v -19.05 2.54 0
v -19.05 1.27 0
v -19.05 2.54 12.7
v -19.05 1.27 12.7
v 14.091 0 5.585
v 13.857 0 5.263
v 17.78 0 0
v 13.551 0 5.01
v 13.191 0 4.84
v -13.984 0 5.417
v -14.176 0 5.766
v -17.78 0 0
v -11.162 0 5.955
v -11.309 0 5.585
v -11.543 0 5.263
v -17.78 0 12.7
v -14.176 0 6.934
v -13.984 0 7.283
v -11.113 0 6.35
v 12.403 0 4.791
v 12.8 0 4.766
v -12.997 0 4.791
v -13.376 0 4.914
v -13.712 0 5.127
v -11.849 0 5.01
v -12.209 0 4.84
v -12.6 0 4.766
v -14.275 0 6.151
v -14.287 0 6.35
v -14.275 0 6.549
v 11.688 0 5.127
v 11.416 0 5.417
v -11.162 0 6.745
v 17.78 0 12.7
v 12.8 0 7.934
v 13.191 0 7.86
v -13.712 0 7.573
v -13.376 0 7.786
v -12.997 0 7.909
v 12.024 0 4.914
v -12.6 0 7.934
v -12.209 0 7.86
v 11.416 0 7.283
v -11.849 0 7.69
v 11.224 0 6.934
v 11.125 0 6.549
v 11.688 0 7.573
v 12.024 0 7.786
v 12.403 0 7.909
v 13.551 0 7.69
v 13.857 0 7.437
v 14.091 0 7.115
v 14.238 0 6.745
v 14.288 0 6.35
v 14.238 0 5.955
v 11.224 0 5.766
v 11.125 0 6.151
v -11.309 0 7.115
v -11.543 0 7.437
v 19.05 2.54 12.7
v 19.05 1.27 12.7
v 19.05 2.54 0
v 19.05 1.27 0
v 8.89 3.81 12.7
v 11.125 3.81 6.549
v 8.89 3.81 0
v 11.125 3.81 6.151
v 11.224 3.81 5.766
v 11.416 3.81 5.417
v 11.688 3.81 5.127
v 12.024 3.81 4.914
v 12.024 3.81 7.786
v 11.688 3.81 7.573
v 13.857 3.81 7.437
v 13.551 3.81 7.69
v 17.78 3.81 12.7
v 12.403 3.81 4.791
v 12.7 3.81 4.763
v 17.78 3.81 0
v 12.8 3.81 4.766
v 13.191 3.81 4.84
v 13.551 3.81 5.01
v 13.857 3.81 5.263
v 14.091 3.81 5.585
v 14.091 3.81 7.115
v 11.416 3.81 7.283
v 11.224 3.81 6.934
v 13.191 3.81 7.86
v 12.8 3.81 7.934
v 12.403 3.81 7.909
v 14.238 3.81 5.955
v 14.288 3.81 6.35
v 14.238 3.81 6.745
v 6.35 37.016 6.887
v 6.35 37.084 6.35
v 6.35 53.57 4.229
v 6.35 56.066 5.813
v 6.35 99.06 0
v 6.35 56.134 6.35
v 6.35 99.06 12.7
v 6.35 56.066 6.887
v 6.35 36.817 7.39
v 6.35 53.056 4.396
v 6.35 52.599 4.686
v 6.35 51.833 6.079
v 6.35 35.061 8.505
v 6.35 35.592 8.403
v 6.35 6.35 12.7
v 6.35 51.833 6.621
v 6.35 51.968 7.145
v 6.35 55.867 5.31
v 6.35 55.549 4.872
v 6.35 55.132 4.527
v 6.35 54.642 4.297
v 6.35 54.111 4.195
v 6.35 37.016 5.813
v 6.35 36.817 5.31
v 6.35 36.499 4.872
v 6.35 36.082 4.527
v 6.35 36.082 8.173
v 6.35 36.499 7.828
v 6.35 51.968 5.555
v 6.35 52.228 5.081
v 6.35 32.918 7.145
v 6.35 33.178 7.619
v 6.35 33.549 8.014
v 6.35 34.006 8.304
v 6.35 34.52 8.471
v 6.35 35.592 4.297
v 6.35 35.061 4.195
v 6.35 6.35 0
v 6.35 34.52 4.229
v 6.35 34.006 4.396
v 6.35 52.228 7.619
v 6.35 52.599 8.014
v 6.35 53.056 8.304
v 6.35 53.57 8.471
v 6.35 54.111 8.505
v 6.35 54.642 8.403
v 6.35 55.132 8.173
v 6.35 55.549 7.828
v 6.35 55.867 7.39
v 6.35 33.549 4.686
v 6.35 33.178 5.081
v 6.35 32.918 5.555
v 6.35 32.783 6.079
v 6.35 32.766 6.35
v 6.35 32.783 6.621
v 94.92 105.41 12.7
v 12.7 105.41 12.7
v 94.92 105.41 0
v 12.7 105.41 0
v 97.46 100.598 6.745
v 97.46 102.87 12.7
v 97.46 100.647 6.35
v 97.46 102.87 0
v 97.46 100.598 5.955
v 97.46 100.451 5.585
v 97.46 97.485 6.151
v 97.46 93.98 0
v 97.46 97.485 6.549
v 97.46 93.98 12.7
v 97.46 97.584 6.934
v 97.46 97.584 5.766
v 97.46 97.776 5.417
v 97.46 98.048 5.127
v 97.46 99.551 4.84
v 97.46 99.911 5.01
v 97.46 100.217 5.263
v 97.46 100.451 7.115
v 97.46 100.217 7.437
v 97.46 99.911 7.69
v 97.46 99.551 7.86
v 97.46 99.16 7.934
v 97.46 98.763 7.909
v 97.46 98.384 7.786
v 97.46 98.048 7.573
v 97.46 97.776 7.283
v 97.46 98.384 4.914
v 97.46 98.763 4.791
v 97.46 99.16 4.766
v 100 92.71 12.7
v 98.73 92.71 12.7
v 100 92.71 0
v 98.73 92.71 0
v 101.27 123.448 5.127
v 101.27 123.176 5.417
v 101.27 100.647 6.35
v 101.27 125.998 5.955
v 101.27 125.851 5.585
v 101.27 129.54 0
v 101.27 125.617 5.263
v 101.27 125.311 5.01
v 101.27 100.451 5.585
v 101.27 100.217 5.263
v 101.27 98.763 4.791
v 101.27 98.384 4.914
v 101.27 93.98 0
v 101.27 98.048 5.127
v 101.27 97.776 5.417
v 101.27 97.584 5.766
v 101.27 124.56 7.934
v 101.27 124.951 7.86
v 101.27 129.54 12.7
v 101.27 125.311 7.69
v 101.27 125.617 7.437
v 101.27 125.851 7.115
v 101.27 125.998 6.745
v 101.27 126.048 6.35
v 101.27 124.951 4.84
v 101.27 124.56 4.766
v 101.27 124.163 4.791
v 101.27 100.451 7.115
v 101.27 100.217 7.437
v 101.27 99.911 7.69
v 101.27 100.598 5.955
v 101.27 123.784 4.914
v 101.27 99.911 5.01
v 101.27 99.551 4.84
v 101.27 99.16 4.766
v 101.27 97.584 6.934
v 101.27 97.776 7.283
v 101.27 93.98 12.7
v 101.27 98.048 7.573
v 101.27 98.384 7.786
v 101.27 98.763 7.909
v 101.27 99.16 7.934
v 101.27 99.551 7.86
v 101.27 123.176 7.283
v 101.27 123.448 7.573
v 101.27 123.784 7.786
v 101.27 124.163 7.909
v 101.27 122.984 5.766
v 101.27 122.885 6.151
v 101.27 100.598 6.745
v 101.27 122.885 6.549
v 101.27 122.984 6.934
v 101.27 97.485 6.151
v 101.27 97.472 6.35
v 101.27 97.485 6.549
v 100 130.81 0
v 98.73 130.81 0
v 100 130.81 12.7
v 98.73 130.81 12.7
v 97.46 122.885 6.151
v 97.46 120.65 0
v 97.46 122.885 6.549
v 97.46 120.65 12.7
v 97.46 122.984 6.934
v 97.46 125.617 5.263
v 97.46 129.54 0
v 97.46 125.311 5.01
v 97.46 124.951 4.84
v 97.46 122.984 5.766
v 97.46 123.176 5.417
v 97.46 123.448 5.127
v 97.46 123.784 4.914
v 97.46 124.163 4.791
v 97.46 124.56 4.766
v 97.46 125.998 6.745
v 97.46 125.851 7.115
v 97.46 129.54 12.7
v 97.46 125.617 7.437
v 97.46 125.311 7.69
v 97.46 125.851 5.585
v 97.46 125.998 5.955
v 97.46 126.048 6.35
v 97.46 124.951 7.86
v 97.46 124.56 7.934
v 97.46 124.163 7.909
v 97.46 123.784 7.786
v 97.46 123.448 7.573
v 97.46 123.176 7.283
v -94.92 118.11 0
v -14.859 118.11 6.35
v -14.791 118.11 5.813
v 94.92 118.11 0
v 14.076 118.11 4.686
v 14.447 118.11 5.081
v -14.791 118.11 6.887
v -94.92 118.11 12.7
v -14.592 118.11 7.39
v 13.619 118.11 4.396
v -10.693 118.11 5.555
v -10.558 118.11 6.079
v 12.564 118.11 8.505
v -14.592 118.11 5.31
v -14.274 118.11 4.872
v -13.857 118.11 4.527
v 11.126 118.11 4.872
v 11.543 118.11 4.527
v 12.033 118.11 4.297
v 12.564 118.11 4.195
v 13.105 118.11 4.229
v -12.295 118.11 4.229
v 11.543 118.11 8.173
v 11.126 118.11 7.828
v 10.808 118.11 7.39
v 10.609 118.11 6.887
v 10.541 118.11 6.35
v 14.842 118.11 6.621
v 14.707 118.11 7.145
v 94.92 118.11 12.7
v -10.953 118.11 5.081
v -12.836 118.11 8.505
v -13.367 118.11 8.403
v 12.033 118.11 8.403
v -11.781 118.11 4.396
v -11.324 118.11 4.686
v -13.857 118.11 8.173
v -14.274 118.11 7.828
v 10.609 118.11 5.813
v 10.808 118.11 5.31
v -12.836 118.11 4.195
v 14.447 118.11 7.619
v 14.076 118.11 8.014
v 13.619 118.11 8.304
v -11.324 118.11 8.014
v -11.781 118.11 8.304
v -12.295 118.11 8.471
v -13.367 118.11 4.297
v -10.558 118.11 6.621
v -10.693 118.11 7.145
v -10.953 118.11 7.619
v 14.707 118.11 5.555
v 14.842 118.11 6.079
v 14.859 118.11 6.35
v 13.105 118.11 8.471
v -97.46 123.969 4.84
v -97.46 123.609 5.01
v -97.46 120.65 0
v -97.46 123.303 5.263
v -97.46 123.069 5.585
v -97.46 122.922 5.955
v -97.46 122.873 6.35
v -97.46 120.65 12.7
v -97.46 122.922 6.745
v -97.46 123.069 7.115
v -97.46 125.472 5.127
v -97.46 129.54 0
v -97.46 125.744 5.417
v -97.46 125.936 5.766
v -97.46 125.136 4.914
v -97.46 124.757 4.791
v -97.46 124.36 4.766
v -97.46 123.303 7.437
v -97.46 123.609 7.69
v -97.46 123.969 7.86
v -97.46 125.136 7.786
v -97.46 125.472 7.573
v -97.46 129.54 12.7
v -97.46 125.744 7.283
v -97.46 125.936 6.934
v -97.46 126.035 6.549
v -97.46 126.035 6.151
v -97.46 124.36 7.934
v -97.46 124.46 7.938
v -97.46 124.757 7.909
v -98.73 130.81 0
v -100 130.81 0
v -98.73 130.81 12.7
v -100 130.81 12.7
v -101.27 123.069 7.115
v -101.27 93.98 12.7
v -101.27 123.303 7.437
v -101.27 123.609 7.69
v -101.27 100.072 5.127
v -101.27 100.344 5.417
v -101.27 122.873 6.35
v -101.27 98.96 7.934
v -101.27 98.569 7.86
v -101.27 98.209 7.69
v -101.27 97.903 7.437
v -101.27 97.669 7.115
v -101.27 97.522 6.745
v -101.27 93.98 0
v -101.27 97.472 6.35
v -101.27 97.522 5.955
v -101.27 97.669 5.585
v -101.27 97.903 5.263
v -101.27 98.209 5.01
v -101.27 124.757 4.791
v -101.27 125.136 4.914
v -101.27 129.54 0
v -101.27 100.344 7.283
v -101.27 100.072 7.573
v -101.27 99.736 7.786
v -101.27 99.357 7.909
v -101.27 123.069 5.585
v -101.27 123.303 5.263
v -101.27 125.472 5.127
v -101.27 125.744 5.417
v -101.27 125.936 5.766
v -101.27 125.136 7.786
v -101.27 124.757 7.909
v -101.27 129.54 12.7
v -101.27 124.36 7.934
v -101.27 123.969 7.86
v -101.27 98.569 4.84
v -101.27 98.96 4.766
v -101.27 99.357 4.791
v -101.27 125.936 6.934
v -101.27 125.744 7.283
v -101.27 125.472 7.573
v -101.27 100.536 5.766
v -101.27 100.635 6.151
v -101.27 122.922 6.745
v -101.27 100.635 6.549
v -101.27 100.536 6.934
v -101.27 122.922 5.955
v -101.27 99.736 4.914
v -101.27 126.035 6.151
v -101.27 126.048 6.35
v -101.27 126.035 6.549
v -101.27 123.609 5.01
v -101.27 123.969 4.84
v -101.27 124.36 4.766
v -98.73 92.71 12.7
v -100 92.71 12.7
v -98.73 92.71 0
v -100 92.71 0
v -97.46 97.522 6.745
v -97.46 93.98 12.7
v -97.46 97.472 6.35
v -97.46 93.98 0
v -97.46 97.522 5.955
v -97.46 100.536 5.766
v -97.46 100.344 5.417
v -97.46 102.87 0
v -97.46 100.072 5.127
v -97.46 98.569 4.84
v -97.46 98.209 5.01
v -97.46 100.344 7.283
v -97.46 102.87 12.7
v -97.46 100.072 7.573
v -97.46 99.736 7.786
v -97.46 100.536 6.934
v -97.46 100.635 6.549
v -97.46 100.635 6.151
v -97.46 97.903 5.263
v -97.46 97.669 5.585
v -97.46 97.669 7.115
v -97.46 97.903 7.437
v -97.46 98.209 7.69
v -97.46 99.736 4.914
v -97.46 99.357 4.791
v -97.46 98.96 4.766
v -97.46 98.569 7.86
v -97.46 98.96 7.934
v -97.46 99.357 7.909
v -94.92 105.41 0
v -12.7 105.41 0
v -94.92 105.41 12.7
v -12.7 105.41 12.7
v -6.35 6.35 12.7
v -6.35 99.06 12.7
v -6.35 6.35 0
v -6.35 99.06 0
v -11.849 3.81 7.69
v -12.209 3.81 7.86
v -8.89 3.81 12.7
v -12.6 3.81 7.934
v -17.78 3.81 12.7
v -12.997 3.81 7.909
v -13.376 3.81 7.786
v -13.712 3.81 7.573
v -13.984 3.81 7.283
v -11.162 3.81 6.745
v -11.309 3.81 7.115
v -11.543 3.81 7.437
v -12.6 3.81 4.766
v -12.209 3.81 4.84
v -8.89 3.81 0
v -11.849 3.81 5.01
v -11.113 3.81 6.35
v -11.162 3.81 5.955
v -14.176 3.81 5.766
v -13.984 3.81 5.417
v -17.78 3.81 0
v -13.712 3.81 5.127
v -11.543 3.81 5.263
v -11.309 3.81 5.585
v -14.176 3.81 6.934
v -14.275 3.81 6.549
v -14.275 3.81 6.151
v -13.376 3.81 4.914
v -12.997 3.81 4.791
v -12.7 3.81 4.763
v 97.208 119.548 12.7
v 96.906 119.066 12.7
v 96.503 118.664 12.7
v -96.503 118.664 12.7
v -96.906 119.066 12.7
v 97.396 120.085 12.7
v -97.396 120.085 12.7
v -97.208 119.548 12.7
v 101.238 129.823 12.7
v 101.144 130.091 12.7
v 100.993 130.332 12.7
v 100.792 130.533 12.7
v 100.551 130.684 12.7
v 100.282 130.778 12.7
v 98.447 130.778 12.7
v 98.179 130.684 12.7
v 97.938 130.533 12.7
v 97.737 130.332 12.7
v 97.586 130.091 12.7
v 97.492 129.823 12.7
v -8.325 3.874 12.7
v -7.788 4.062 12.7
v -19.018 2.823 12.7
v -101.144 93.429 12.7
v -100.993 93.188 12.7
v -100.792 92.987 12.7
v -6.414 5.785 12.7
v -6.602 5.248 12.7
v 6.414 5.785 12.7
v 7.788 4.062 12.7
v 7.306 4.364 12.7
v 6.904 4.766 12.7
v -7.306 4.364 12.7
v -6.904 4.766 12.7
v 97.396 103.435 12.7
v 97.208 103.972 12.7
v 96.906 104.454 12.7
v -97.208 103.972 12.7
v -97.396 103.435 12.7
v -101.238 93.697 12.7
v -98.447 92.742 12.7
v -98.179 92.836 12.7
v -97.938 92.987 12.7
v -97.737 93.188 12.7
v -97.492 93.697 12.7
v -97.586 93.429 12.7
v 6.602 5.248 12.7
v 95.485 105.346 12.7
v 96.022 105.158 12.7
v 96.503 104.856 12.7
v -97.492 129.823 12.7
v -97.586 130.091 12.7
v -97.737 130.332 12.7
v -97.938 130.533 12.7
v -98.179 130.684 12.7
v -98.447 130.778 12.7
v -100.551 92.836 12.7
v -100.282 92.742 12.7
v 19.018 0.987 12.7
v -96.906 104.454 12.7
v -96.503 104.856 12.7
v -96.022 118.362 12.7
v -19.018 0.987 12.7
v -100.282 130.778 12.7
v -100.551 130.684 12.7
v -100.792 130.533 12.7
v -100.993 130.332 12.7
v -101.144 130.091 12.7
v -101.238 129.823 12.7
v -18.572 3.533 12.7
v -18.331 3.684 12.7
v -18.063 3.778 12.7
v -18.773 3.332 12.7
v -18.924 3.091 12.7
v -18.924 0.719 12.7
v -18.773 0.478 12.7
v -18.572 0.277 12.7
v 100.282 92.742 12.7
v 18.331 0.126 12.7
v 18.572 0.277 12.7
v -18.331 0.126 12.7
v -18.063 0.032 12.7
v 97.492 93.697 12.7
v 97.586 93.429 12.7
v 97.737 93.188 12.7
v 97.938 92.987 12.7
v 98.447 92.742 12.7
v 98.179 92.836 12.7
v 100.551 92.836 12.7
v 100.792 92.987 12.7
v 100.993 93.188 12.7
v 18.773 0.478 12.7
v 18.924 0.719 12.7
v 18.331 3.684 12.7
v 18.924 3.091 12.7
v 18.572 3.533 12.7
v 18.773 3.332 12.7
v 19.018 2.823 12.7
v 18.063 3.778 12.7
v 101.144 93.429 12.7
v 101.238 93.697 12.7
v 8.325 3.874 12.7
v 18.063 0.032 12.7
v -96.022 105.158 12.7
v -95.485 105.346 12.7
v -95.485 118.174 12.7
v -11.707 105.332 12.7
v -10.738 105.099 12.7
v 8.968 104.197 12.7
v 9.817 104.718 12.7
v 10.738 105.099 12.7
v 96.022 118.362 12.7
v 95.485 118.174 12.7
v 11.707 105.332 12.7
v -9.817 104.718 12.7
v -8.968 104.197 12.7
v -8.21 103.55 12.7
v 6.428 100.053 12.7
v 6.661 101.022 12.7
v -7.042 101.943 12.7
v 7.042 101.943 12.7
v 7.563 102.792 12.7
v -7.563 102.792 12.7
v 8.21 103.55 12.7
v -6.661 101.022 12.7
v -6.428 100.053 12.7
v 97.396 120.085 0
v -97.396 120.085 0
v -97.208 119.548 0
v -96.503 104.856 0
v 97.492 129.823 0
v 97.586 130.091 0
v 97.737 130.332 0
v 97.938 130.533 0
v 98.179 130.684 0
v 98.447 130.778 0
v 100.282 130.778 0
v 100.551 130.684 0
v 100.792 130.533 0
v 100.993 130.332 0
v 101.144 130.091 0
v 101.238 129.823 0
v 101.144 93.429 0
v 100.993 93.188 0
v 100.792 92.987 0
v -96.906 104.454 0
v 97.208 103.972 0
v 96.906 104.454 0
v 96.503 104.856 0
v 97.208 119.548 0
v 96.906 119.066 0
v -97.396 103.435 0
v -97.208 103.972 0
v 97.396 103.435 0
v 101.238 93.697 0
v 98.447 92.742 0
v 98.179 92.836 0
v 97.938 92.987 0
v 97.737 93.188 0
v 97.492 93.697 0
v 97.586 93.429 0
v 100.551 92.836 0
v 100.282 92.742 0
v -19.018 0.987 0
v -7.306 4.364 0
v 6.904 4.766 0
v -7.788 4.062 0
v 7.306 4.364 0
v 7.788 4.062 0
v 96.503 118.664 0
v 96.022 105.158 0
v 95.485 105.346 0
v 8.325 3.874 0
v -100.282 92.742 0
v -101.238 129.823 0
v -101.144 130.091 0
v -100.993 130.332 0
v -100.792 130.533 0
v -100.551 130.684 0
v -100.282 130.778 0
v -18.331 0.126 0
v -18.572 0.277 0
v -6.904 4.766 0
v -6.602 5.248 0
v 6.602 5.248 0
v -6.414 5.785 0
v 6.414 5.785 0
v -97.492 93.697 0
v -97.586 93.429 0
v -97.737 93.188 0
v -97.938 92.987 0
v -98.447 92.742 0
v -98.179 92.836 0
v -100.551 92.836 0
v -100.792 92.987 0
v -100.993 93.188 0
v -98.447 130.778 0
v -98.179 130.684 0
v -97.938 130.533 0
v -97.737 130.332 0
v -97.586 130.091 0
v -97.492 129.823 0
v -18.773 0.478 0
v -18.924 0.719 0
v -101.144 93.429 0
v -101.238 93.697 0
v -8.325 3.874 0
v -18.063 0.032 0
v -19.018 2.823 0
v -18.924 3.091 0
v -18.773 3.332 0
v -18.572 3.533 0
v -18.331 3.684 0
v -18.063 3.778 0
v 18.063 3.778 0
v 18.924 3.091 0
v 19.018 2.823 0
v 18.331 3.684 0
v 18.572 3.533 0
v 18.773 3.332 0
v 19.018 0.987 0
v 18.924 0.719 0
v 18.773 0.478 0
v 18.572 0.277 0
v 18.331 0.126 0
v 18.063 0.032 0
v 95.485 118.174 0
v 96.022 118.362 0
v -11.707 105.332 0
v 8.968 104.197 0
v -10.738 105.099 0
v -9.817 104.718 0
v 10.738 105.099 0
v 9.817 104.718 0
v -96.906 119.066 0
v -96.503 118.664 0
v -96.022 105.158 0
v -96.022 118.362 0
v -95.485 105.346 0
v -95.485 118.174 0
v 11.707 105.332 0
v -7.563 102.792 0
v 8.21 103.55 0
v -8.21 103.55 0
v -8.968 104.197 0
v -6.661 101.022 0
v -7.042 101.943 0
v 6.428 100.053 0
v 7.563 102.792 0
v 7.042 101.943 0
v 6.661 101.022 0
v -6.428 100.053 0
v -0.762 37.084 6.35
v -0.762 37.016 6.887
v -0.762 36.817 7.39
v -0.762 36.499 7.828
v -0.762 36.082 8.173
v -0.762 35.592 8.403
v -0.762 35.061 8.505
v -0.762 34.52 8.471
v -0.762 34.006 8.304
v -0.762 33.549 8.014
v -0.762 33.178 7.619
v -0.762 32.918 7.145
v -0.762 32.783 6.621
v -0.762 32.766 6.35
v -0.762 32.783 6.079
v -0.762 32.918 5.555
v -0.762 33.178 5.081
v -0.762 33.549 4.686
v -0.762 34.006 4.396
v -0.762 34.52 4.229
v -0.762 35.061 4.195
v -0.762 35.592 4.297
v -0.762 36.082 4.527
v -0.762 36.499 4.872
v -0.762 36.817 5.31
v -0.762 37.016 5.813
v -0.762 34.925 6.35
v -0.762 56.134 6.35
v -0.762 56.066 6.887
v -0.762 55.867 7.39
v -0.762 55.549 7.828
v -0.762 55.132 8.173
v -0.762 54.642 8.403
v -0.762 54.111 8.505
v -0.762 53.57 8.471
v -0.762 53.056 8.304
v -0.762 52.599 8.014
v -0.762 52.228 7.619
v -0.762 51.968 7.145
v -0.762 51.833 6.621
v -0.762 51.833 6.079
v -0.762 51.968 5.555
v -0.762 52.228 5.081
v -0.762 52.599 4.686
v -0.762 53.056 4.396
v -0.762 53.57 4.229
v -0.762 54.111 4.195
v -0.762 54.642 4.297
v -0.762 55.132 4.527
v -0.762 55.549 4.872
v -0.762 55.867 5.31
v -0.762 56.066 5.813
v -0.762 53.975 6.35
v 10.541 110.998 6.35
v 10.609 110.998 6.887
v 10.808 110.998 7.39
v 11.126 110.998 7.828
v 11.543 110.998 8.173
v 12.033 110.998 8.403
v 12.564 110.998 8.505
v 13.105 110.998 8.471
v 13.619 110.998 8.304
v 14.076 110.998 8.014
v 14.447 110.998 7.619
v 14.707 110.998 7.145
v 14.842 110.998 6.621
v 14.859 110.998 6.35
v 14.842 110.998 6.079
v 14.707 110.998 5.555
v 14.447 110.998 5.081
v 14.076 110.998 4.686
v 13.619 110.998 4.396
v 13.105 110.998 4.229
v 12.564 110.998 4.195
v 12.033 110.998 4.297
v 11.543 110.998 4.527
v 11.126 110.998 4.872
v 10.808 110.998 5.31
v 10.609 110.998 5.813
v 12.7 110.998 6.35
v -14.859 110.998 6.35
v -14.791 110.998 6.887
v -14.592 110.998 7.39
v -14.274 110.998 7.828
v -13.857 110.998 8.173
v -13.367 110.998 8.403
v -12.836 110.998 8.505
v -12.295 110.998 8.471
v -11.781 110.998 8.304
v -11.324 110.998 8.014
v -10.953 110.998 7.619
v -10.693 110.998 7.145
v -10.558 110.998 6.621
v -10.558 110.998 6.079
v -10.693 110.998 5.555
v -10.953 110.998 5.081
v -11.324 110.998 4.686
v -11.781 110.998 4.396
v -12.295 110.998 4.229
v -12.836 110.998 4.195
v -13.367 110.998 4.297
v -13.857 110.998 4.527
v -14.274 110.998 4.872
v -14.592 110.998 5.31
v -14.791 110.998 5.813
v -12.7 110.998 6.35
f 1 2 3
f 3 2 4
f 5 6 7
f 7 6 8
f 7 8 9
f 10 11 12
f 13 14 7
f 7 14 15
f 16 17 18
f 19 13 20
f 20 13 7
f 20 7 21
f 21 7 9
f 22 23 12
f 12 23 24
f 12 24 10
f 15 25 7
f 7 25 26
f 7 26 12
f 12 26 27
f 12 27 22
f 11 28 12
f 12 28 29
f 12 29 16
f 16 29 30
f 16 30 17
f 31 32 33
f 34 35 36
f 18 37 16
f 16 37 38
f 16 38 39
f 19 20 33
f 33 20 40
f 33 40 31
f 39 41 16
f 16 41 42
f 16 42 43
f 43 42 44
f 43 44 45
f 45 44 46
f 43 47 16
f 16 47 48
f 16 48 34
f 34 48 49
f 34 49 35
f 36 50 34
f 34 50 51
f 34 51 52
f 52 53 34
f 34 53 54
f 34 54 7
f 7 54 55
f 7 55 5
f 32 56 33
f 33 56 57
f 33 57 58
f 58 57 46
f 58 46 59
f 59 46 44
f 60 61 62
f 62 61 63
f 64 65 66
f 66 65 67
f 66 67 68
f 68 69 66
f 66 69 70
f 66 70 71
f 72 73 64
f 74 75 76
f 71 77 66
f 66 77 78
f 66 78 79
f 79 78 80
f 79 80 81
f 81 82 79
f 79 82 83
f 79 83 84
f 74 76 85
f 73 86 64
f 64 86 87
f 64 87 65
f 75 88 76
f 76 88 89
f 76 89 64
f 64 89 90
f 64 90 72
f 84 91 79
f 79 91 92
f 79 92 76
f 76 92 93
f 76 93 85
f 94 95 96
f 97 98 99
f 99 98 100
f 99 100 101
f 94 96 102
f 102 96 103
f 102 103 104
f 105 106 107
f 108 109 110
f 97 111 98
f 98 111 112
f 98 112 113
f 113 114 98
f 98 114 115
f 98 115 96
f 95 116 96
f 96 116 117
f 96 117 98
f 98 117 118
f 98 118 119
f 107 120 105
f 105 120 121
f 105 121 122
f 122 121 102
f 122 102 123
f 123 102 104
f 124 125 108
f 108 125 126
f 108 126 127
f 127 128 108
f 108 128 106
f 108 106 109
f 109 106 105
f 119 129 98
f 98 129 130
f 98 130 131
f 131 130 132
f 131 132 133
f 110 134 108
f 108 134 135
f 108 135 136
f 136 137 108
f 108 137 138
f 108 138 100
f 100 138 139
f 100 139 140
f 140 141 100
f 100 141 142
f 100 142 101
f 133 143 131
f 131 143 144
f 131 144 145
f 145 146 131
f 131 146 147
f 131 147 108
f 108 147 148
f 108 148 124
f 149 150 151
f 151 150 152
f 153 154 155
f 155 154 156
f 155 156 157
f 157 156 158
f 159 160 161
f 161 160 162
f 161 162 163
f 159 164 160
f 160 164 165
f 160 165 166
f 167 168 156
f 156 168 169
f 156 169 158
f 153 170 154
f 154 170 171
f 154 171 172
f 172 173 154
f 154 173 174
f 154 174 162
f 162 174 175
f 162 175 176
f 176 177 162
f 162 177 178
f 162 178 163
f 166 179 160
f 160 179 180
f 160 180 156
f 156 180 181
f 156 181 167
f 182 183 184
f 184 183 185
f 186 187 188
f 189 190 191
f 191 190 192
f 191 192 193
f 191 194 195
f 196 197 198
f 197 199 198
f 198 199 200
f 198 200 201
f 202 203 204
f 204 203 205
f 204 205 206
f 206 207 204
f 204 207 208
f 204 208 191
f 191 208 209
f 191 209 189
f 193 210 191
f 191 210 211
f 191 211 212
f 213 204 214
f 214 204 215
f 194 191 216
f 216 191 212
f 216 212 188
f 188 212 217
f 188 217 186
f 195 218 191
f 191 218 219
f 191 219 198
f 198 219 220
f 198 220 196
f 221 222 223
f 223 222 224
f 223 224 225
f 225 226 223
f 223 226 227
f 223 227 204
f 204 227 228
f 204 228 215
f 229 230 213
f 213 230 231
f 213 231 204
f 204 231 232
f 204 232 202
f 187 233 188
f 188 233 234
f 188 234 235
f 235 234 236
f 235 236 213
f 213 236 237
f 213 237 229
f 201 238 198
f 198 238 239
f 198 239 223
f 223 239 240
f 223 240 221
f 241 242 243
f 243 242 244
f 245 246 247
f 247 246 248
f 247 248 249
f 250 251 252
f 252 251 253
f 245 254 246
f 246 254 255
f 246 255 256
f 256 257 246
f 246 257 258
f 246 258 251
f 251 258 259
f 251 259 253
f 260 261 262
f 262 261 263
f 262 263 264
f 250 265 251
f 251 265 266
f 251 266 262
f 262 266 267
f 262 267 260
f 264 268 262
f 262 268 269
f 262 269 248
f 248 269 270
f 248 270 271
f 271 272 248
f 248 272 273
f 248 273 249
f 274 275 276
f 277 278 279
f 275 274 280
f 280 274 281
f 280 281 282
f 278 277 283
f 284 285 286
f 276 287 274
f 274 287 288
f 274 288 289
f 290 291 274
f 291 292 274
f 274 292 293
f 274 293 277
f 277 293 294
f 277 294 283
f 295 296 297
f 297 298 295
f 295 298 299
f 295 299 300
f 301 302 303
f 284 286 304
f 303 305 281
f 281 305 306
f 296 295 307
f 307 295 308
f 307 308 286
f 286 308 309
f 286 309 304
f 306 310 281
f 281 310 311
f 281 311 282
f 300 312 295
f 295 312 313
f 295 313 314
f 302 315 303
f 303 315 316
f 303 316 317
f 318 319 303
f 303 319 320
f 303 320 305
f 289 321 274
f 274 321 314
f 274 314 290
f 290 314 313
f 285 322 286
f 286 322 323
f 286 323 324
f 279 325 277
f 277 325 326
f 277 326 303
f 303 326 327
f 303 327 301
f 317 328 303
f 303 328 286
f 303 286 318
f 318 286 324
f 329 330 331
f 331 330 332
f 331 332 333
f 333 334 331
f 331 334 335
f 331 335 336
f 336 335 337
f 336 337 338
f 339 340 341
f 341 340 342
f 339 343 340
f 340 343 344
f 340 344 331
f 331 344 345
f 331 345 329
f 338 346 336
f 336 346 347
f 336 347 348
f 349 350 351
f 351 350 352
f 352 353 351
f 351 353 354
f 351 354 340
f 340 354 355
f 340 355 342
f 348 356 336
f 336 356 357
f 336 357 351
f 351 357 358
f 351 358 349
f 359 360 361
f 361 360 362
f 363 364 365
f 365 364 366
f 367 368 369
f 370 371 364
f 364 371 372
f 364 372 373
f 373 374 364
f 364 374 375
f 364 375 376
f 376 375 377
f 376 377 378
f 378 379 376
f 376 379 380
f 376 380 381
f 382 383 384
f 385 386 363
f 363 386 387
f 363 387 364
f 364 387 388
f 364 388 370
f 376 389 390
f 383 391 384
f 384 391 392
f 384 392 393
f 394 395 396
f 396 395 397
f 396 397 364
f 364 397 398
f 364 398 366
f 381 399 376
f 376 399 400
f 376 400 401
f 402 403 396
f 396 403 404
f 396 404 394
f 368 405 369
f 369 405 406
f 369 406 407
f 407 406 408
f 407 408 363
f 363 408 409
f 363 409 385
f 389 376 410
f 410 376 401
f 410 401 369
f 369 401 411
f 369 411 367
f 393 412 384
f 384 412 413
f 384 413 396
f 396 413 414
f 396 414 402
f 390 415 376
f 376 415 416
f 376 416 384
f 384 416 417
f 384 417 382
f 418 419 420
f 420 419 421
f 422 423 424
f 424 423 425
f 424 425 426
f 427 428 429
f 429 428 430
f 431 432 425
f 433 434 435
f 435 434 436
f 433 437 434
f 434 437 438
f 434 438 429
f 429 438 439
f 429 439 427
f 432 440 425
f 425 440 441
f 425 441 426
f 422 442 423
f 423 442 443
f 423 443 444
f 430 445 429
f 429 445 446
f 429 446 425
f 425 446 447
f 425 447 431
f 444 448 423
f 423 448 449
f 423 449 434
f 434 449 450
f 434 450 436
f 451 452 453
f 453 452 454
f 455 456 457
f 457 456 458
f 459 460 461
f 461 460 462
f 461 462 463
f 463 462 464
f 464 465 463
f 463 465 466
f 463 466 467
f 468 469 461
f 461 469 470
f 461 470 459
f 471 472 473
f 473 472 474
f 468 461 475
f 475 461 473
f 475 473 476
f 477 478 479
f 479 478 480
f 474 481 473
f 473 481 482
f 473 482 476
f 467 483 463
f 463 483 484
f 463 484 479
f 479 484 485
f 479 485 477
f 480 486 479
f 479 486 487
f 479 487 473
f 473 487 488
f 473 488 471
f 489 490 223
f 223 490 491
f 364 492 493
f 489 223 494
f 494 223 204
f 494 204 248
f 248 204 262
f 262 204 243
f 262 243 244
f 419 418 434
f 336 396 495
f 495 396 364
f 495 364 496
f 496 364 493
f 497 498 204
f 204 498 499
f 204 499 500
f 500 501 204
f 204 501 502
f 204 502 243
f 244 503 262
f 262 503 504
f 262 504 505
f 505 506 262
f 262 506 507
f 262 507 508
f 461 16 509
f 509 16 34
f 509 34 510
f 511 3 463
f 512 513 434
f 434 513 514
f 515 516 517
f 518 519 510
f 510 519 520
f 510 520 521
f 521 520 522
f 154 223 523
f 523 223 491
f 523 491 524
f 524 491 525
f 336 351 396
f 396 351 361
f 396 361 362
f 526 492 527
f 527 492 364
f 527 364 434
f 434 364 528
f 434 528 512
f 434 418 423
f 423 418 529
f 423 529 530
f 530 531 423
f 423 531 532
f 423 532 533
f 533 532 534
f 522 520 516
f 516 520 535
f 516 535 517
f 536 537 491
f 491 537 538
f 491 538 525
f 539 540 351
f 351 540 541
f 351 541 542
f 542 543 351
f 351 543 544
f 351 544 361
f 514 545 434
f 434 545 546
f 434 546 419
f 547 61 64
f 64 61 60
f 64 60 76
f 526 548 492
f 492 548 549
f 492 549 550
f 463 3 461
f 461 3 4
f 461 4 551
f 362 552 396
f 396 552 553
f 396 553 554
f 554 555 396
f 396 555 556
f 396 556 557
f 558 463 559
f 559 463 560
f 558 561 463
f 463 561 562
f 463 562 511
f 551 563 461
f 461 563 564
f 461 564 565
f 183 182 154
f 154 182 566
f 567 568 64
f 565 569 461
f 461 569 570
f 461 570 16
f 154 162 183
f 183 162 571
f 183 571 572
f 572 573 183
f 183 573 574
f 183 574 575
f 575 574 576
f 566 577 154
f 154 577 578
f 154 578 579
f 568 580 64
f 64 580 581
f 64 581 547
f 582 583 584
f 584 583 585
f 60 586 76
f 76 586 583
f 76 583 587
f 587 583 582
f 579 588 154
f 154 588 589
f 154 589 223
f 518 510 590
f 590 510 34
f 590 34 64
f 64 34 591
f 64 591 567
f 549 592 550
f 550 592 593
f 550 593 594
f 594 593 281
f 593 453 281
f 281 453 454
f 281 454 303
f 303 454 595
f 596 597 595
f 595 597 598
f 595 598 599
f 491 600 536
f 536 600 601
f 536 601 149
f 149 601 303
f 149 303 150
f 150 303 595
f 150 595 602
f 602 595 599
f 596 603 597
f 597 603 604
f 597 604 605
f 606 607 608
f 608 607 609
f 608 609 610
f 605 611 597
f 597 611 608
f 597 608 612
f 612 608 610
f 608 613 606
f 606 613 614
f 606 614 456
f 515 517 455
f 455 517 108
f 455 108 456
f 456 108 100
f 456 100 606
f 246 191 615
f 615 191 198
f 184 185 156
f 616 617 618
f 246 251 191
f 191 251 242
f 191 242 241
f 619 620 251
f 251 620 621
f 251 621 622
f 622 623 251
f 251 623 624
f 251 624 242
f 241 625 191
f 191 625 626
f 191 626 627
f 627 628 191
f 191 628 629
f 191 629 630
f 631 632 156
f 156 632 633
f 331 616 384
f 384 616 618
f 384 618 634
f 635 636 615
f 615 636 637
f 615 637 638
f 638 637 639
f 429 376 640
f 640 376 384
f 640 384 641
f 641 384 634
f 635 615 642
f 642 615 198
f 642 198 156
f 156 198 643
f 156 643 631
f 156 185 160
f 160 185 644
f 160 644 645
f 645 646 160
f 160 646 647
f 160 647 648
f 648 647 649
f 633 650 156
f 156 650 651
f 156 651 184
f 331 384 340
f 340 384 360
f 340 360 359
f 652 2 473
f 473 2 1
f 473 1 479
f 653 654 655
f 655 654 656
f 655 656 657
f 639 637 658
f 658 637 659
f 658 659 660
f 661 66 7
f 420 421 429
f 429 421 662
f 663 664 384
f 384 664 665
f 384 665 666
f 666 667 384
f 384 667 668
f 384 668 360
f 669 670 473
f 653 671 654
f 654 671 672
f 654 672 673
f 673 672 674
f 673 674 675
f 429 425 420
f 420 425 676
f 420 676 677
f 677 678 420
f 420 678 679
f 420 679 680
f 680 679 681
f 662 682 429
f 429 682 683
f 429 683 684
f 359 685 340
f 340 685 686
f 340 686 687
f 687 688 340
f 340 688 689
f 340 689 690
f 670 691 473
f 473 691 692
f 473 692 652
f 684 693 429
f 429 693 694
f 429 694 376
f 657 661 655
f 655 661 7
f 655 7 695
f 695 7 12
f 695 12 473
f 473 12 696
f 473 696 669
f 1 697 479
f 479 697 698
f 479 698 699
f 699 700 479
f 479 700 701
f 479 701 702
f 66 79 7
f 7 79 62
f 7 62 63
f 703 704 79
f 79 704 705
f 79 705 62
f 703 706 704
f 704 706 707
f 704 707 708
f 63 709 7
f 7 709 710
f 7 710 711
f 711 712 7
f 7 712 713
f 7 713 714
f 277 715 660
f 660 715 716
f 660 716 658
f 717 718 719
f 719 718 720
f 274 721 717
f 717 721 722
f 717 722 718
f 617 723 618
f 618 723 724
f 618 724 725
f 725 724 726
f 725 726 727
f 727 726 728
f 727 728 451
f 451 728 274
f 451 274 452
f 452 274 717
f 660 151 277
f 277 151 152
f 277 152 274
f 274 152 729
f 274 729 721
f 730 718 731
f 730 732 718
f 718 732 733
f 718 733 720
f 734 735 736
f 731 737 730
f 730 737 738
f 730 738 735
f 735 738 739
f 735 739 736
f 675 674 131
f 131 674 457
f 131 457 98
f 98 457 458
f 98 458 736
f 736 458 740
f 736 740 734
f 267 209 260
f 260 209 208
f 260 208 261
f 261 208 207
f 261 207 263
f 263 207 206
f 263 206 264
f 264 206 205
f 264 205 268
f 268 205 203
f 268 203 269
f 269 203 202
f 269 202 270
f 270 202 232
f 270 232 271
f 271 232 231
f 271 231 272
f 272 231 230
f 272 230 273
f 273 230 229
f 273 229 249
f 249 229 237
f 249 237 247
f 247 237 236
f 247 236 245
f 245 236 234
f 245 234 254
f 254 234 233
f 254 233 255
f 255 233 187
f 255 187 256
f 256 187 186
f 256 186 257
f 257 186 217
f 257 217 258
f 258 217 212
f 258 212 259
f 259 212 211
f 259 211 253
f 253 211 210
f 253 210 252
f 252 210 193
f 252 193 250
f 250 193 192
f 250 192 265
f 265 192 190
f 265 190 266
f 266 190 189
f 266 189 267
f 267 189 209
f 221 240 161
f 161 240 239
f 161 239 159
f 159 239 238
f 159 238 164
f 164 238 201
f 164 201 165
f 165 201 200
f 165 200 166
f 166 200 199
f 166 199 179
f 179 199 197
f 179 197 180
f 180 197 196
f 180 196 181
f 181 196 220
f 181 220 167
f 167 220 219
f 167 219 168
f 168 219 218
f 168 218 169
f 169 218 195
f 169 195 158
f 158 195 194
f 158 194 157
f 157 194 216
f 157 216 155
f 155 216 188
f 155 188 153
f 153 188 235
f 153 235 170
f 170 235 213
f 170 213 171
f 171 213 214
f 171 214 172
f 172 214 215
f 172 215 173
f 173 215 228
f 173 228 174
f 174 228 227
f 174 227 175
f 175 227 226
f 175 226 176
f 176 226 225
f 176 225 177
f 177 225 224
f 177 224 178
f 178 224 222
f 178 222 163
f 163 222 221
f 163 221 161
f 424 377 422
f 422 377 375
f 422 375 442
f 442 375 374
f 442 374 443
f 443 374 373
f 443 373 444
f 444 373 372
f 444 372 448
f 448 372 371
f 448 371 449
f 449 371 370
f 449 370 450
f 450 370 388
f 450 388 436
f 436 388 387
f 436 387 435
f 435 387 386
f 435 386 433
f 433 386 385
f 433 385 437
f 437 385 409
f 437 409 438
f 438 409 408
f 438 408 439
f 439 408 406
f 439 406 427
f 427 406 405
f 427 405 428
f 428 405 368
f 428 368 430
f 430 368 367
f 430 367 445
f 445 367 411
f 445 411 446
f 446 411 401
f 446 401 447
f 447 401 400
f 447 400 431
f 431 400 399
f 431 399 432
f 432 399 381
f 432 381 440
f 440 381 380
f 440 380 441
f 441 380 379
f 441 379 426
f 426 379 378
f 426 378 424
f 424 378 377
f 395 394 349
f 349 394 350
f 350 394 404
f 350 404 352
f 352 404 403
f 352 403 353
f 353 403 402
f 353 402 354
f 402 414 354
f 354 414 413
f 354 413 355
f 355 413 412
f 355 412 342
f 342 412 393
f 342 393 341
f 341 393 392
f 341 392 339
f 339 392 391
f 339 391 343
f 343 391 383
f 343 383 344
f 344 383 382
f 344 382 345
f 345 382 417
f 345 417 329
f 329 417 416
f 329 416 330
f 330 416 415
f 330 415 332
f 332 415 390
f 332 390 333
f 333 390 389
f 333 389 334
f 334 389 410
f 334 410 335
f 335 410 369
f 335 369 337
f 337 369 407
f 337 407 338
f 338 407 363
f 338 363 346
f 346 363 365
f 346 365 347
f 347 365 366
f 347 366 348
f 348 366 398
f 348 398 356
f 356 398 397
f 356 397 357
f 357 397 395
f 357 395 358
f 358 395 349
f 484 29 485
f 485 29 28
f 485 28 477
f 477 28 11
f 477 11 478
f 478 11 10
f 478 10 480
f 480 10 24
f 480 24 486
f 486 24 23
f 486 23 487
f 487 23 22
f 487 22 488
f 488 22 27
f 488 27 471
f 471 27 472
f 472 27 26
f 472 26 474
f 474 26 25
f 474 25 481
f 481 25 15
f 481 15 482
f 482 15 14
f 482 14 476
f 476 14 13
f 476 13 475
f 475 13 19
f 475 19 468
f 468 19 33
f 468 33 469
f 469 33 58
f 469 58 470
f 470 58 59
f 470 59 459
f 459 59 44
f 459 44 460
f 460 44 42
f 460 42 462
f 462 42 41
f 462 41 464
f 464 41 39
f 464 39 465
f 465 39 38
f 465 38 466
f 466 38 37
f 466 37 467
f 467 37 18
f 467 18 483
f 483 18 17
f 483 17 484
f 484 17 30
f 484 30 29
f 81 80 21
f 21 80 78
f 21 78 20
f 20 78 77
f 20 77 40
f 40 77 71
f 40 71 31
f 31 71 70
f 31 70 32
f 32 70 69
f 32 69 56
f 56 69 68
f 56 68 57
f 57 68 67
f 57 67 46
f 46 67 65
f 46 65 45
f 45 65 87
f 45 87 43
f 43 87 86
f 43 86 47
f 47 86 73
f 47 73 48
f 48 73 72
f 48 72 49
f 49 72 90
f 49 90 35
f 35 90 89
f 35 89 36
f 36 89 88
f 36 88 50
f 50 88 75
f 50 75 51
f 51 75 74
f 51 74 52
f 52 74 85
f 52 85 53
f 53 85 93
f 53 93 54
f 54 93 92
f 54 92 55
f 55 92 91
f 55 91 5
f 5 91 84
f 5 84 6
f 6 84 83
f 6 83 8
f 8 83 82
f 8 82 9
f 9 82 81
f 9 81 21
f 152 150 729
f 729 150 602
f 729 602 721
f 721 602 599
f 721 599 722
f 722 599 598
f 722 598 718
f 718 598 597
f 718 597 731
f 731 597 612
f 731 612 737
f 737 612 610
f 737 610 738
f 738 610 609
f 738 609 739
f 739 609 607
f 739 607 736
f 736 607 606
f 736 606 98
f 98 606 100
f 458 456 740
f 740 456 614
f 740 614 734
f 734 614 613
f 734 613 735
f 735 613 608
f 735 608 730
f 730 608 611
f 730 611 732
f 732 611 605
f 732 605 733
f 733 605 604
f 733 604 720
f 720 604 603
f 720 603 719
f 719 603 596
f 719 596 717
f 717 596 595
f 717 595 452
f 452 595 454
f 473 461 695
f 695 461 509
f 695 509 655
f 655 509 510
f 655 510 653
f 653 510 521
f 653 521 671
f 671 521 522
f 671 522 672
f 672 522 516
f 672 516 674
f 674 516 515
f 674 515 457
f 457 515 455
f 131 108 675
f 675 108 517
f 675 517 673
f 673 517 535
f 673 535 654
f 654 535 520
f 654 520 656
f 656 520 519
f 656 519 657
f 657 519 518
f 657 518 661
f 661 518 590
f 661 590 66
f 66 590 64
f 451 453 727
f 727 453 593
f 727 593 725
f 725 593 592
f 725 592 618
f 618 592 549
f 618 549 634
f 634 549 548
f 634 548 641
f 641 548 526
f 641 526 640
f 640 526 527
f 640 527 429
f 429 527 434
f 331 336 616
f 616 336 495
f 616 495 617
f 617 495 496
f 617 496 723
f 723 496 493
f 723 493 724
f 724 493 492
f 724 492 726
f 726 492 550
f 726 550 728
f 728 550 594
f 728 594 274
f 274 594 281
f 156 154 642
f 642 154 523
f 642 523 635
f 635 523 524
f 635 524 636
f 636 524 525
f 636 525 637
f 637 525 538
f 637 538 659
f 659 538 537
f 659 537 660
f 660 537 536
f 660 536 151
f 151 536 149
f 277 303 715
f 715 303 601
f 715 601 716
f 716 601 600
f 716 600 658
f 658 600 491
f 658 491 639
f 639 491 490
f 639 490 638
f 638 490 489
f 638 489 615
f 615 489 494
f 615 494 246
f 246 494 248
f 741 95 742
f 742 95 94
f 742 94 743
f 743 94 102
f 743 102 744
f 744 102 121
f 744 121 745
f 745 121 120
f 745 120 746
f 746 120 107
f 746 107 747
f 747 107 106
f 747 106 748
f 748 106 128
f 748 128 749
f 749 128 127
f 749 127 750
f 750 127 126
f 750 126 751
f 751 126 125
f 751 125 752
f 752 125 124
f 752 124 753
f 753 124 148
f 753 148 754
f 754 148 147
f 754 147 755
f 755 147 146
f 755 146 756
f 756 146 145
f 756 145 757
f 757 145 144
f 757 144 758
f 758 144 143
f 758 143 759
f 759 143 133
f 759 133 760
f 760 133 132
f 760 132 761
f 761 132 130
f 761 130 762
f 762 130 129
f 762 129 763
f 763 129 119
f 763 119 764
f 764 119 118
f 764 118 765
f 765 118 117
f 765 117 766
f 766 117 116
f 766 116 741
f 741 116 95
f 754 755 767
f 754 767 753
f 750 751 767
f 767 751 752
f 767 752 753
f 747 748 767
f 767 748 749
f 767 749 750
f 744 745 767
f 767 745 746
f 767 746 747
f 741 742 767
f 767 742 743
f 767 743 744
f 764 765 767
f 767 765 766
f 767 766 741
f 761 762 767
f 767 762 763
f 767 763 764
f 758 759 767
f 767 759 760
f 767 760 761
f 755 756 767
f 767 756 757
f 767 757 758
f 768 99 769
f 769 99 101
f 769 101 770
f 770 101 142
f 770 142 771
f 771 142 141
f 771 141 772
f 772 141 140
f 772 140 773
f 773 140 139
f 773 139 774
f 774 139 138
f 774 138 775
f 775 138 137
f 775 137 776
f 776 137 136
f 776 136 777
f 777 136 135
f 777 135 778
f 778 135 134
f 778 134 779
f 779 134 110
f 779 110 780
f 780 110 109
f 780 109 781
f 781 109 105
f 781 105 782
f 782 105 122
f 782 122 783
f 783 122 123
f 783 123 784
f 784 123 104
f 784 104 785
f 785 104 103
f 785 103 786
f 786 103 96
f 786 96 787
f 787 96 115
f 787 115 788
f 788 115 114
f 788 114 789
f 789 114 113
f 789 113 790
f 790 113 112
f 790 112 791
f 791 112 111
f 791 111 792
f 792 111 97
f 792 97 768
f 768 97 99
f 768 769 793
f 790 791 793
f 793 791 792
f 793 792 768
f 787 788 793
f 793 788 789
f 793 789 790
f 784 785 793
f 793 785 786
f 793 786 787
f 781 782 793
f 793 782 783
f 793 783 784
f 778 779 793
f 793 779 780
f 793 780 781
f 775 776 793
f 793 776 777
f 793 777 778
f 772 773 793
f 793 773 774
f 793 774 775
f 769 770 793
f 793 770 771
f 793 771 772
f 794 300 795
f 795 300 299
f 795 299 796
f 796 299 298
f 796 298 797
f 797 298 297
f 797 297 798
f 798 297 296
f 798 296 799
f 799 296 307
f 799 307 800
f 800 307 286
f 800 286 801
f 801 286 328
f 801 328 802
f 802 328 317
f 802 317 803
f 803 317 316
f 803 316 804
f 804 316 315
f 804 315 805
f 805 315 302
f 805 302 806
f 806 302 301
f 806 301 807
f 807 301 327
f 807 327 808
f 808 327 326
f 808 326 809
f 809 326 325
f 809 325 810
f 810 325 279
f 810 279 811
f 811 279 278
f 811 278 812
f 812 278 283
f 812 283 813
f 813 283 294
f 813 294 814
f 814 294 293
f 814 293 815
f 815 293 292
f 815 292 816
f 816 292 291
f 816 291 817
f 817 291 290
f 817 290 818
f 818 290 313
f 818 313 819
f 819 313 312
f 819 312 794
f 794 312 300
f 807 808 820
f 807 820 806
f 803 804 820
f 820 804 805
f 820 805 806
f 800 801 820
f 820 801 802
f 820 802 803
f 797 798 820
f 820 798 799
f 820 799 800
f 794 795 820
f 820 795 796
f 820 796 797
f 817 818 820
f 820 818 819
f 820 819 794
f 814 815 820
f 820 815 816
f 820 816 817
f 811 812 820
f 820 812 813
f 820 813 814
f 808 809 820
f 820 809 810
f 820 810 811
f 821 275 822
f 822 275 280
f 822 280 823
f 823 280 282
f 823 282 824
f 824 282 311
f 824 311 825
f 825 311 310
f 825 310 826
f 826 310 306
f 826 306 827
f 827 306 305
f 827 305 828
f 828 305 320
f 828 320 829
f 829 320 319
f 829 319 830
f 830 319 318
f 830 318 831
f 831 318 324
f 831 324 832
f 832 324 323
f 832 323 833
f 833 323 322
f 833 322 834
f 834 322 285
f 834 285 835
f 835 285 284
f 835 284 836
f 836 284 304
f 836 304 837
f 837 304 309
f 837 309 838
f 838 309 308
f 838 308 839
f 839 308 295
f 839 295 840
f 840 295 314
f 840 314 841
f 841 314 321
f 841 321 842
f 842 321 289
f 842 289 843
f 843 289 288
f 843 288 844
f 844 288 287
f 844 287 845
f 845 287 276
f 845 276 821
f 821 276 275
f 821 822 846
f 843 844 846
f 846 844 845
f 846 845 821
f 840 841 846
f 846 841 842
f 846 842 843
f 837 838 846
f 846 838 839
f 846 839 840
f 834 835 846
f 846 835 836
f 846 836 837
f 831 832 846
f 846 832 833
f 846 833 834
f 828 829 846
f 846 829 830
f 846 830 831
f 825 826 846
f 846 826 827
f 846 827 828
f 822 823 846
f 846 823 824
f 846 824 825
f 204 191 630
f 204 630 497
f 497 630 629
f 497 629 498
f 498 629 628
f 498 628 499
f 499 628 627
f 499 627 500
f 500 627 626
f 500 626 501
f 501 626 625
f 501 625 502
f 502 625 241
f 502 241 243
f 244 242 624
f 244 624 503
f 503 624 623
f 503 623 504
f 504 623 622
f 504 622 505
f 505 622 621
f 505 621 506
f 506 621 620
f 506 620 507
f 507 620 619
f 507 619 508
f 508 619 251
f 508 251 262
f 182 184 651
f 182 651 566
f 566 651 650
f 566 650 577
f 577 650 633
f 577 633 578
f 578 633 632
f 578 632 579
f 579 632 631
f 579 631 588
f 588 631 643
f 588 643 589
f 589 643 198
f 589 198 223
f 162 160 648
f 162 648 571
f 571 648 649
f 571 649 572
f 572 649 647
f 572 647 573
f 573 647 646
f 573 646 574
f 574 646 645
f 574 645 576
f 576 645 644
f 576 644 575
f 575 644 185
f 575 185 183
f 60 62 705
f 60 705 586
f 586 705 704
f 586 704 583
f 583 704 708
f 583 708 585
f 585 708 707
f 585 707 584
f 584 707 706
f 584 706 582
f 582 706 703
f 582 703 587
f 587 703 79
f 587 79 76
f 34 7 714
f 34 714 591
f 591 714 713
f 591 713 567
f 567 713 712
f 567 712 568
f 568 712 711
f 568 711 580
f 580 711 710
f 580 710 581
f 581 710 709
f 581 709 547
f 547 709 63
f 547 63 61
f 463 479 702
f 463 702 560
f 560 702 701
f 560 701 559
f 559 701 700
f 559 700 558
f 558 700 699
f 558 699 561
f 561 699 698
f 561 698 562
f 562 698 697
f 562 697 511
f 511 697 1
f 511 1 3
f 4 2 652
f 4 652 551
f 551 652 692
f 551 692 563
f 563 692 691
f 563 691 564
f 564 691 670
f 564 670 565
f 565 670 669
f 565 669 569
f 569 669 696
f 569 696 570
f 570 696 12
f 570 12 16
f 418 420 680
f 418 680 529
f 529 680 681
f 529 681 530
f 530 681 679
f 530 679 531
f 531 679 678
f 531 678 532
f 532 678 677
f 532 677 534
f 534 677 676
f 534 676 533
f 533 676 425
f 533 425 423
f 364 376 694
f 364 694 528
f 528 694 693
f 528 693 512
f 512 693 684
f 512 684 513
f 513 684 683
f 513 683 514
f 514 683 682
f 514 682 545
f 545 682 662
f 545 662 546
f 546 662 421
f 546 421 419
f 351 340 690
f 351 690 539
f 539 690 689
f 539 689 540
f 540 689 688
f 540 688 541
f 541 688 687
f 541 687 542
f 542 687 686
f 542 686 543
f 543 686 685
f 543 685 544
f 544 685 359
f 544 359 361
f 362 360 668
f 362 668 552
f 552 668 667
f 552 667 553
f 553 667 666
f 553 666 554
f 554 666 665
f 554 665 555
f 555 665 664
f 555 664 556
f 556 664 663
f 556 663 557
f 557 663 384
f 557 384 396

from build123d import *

# Parameters (mm, degrees)
BOSS_EXTRUDE1_DEPTH      = 12.7
SKETCH2_R                = 1.5875
SIDE_MOUNT_HOLES_DEPTH   = 6.35
SKETCH3_R                = 1.5875
BOTTOM_MOUNT_HOLES_DEPTH = 3.81
FILLET1_R                = 6.35
FILLET2_R                = 2.54
SKETCH4_R                = 2.159
SWITCH_MOUNT_HOLES_DEPTH = 7.112
SKETCH5_R                = 2.159
CUT_EXTRUDE1_DEPTH       = 7.112
FILLET3_R                = 1.27


with BuildPart() as part:
    # Sketch1 → Boss-Extrude1 (new body)
    with BuildSketch(Plane.XY):
        Polygon((19.05, 0), (-19.05, 0), (-19.05, 3.81), (-6.35, 3.81), (-6.35, 105.41), (-97.4598, 105.41), (-97.4598, 92.71), (-101.2698, 92.71), (-101.2698, 130.81), (-97.4598, 130.81), (-97.4598, 118.11), (97.4598, 118.11), (97.4598, 130.81), (101.2698, 130.81), (101.2698, 92.71), (97.4598, 92.71), (97.4598, 105.41), (6.35, 105.41), (6.35, 3.81), (19.05, 3.81), align=None)
    extrude(amount=BOSS_EXTRUDE1_DEPTH)

    # Sketch2 → Side-Mount-Holes (cut)
    with BuildSketch(Plane(origin=(101.2698, 0, 0), x_dir=(0, 0, -1), z_dir=(1, 0, 0))):
        with Locations(Location((-6.35, 124.46, 0), (0, 0, 90))):
            Circle(SKETCH2_R)
        with Locations(Location((-6.35, 99.06, 0), (0, 0, 90))):
            Circle(SKETCH2_R)
    side_mount_holes = extrude(amount=-SIDE_MOUNT_HOLES_DEPTH, mode=Mode.SUBTRACT)

    # Mirror1: Side-Mount-Holes across plane
    add(side_mount_holes.mirror(Plane(origin=(0, 0, 0), x_dir=(0, 0, 1), z_dir=(1, 0, 0))), mode=Mode.SUBTRACT)

    # Sketch3 → Bottom_Mount_Holes (cut)
    with BuildSketch(Plane.XZ):
        with Locations((12.7, 6.35)):
            Circle(SKETCH3_R)
        with Locations(Location((-12.7, 6.35, 0), (0, 0, 270))):
            Circle(SKETCH3_R)
    extrude(amount=-BOTTOM_MOUNT_HOLES_DEPTH, mode=Mode.SUBTRACT)

    # Fillet1
    fillet1_edges = [part.edges().sort_by_distance(p)[0] for p in [
        (-6.35, 105.41, 6.35),
        (6.35, 105.41, 6.35),
    ]]
    fillet(fillet1_edges, radius=FILLET1_R)

    # Fillet2
    fillet2_edges = [part.edges().sort_by_distance(p)[0] for p in [
        (-6.35, 3.81, 6.35),
        (-97.4598, 105.41, 6.35),
        (-97.4598, 118.11, 6.35),
        (97.4598, 118.11, 6.35),
        (97.4598, 105.41, 6.35),
        (6.35, 3.81, 6.35),
    ]]
    fillet(fillet2_edges, radius=FILLET2_R)

    # Sketch4 → Switch_Mount_Holes (cut)
    with BuildSketch(Plane(origin=(6.35, 0, 0), x_dir=(0, 0, -1), z_dir=(1, 0, 0))):
        with Locations(Location((-6.35, 53.975, 0), (0, 0, 90))):
            Circle(SKETCH4_R)
        with Locations(Location((-6.35, 34.925, 0), (0, 0, 270))):
            Circle(SKETCH4_R)
    extrude(amount=-SWITCH_MOUNT_HOLES_DEPTH, mode=Mode.SUBTRACT)

    # Sketch5 → Cut-Extrude1 (cut)
    with BuildSketch(Plane(origin=(0, 118.11, 0), x_dir=(1, 0, 0), z_dir=(0, 1, 0))):
        with Locations(Location((-12.7, -6.35, 0), (0, 0, 180))):
            Circle(SKETCH5_R)
        with Locations((12.7, -6.35)):
            Circle(SKETCH5_R)
    extrude(amount=-CUT_EXTRUDE1_DEPTH, mode=Mode.SUBTRACT)

    # Fillet3
    fillet3_edges = [part.edges().sort_by_distance(p)[0] for p in [
        (-19.05, 3.81, 6.35),
        (-97.4598, 92.71, 6.35),
        (-101.2698, 92.71, 6.35),
        (-101.2698, 130.81, 6.35),
        (-97.4598, 130.81, 6.35),
        (97.4598, 130.81, 6.35),
        (101.2698, 130.81, 6.35),
        (101.2698, 92.71, 6.35),
        (97.4598, 92.71, 6.35),
        (19.05, 3.81, 6.35),
        (19.05, 0, 6.35),
        (-19.05, 0, 6.35),
    ]]
    fillet(fillet3_edges, radius=FILLET3_R)


solid = part.part
